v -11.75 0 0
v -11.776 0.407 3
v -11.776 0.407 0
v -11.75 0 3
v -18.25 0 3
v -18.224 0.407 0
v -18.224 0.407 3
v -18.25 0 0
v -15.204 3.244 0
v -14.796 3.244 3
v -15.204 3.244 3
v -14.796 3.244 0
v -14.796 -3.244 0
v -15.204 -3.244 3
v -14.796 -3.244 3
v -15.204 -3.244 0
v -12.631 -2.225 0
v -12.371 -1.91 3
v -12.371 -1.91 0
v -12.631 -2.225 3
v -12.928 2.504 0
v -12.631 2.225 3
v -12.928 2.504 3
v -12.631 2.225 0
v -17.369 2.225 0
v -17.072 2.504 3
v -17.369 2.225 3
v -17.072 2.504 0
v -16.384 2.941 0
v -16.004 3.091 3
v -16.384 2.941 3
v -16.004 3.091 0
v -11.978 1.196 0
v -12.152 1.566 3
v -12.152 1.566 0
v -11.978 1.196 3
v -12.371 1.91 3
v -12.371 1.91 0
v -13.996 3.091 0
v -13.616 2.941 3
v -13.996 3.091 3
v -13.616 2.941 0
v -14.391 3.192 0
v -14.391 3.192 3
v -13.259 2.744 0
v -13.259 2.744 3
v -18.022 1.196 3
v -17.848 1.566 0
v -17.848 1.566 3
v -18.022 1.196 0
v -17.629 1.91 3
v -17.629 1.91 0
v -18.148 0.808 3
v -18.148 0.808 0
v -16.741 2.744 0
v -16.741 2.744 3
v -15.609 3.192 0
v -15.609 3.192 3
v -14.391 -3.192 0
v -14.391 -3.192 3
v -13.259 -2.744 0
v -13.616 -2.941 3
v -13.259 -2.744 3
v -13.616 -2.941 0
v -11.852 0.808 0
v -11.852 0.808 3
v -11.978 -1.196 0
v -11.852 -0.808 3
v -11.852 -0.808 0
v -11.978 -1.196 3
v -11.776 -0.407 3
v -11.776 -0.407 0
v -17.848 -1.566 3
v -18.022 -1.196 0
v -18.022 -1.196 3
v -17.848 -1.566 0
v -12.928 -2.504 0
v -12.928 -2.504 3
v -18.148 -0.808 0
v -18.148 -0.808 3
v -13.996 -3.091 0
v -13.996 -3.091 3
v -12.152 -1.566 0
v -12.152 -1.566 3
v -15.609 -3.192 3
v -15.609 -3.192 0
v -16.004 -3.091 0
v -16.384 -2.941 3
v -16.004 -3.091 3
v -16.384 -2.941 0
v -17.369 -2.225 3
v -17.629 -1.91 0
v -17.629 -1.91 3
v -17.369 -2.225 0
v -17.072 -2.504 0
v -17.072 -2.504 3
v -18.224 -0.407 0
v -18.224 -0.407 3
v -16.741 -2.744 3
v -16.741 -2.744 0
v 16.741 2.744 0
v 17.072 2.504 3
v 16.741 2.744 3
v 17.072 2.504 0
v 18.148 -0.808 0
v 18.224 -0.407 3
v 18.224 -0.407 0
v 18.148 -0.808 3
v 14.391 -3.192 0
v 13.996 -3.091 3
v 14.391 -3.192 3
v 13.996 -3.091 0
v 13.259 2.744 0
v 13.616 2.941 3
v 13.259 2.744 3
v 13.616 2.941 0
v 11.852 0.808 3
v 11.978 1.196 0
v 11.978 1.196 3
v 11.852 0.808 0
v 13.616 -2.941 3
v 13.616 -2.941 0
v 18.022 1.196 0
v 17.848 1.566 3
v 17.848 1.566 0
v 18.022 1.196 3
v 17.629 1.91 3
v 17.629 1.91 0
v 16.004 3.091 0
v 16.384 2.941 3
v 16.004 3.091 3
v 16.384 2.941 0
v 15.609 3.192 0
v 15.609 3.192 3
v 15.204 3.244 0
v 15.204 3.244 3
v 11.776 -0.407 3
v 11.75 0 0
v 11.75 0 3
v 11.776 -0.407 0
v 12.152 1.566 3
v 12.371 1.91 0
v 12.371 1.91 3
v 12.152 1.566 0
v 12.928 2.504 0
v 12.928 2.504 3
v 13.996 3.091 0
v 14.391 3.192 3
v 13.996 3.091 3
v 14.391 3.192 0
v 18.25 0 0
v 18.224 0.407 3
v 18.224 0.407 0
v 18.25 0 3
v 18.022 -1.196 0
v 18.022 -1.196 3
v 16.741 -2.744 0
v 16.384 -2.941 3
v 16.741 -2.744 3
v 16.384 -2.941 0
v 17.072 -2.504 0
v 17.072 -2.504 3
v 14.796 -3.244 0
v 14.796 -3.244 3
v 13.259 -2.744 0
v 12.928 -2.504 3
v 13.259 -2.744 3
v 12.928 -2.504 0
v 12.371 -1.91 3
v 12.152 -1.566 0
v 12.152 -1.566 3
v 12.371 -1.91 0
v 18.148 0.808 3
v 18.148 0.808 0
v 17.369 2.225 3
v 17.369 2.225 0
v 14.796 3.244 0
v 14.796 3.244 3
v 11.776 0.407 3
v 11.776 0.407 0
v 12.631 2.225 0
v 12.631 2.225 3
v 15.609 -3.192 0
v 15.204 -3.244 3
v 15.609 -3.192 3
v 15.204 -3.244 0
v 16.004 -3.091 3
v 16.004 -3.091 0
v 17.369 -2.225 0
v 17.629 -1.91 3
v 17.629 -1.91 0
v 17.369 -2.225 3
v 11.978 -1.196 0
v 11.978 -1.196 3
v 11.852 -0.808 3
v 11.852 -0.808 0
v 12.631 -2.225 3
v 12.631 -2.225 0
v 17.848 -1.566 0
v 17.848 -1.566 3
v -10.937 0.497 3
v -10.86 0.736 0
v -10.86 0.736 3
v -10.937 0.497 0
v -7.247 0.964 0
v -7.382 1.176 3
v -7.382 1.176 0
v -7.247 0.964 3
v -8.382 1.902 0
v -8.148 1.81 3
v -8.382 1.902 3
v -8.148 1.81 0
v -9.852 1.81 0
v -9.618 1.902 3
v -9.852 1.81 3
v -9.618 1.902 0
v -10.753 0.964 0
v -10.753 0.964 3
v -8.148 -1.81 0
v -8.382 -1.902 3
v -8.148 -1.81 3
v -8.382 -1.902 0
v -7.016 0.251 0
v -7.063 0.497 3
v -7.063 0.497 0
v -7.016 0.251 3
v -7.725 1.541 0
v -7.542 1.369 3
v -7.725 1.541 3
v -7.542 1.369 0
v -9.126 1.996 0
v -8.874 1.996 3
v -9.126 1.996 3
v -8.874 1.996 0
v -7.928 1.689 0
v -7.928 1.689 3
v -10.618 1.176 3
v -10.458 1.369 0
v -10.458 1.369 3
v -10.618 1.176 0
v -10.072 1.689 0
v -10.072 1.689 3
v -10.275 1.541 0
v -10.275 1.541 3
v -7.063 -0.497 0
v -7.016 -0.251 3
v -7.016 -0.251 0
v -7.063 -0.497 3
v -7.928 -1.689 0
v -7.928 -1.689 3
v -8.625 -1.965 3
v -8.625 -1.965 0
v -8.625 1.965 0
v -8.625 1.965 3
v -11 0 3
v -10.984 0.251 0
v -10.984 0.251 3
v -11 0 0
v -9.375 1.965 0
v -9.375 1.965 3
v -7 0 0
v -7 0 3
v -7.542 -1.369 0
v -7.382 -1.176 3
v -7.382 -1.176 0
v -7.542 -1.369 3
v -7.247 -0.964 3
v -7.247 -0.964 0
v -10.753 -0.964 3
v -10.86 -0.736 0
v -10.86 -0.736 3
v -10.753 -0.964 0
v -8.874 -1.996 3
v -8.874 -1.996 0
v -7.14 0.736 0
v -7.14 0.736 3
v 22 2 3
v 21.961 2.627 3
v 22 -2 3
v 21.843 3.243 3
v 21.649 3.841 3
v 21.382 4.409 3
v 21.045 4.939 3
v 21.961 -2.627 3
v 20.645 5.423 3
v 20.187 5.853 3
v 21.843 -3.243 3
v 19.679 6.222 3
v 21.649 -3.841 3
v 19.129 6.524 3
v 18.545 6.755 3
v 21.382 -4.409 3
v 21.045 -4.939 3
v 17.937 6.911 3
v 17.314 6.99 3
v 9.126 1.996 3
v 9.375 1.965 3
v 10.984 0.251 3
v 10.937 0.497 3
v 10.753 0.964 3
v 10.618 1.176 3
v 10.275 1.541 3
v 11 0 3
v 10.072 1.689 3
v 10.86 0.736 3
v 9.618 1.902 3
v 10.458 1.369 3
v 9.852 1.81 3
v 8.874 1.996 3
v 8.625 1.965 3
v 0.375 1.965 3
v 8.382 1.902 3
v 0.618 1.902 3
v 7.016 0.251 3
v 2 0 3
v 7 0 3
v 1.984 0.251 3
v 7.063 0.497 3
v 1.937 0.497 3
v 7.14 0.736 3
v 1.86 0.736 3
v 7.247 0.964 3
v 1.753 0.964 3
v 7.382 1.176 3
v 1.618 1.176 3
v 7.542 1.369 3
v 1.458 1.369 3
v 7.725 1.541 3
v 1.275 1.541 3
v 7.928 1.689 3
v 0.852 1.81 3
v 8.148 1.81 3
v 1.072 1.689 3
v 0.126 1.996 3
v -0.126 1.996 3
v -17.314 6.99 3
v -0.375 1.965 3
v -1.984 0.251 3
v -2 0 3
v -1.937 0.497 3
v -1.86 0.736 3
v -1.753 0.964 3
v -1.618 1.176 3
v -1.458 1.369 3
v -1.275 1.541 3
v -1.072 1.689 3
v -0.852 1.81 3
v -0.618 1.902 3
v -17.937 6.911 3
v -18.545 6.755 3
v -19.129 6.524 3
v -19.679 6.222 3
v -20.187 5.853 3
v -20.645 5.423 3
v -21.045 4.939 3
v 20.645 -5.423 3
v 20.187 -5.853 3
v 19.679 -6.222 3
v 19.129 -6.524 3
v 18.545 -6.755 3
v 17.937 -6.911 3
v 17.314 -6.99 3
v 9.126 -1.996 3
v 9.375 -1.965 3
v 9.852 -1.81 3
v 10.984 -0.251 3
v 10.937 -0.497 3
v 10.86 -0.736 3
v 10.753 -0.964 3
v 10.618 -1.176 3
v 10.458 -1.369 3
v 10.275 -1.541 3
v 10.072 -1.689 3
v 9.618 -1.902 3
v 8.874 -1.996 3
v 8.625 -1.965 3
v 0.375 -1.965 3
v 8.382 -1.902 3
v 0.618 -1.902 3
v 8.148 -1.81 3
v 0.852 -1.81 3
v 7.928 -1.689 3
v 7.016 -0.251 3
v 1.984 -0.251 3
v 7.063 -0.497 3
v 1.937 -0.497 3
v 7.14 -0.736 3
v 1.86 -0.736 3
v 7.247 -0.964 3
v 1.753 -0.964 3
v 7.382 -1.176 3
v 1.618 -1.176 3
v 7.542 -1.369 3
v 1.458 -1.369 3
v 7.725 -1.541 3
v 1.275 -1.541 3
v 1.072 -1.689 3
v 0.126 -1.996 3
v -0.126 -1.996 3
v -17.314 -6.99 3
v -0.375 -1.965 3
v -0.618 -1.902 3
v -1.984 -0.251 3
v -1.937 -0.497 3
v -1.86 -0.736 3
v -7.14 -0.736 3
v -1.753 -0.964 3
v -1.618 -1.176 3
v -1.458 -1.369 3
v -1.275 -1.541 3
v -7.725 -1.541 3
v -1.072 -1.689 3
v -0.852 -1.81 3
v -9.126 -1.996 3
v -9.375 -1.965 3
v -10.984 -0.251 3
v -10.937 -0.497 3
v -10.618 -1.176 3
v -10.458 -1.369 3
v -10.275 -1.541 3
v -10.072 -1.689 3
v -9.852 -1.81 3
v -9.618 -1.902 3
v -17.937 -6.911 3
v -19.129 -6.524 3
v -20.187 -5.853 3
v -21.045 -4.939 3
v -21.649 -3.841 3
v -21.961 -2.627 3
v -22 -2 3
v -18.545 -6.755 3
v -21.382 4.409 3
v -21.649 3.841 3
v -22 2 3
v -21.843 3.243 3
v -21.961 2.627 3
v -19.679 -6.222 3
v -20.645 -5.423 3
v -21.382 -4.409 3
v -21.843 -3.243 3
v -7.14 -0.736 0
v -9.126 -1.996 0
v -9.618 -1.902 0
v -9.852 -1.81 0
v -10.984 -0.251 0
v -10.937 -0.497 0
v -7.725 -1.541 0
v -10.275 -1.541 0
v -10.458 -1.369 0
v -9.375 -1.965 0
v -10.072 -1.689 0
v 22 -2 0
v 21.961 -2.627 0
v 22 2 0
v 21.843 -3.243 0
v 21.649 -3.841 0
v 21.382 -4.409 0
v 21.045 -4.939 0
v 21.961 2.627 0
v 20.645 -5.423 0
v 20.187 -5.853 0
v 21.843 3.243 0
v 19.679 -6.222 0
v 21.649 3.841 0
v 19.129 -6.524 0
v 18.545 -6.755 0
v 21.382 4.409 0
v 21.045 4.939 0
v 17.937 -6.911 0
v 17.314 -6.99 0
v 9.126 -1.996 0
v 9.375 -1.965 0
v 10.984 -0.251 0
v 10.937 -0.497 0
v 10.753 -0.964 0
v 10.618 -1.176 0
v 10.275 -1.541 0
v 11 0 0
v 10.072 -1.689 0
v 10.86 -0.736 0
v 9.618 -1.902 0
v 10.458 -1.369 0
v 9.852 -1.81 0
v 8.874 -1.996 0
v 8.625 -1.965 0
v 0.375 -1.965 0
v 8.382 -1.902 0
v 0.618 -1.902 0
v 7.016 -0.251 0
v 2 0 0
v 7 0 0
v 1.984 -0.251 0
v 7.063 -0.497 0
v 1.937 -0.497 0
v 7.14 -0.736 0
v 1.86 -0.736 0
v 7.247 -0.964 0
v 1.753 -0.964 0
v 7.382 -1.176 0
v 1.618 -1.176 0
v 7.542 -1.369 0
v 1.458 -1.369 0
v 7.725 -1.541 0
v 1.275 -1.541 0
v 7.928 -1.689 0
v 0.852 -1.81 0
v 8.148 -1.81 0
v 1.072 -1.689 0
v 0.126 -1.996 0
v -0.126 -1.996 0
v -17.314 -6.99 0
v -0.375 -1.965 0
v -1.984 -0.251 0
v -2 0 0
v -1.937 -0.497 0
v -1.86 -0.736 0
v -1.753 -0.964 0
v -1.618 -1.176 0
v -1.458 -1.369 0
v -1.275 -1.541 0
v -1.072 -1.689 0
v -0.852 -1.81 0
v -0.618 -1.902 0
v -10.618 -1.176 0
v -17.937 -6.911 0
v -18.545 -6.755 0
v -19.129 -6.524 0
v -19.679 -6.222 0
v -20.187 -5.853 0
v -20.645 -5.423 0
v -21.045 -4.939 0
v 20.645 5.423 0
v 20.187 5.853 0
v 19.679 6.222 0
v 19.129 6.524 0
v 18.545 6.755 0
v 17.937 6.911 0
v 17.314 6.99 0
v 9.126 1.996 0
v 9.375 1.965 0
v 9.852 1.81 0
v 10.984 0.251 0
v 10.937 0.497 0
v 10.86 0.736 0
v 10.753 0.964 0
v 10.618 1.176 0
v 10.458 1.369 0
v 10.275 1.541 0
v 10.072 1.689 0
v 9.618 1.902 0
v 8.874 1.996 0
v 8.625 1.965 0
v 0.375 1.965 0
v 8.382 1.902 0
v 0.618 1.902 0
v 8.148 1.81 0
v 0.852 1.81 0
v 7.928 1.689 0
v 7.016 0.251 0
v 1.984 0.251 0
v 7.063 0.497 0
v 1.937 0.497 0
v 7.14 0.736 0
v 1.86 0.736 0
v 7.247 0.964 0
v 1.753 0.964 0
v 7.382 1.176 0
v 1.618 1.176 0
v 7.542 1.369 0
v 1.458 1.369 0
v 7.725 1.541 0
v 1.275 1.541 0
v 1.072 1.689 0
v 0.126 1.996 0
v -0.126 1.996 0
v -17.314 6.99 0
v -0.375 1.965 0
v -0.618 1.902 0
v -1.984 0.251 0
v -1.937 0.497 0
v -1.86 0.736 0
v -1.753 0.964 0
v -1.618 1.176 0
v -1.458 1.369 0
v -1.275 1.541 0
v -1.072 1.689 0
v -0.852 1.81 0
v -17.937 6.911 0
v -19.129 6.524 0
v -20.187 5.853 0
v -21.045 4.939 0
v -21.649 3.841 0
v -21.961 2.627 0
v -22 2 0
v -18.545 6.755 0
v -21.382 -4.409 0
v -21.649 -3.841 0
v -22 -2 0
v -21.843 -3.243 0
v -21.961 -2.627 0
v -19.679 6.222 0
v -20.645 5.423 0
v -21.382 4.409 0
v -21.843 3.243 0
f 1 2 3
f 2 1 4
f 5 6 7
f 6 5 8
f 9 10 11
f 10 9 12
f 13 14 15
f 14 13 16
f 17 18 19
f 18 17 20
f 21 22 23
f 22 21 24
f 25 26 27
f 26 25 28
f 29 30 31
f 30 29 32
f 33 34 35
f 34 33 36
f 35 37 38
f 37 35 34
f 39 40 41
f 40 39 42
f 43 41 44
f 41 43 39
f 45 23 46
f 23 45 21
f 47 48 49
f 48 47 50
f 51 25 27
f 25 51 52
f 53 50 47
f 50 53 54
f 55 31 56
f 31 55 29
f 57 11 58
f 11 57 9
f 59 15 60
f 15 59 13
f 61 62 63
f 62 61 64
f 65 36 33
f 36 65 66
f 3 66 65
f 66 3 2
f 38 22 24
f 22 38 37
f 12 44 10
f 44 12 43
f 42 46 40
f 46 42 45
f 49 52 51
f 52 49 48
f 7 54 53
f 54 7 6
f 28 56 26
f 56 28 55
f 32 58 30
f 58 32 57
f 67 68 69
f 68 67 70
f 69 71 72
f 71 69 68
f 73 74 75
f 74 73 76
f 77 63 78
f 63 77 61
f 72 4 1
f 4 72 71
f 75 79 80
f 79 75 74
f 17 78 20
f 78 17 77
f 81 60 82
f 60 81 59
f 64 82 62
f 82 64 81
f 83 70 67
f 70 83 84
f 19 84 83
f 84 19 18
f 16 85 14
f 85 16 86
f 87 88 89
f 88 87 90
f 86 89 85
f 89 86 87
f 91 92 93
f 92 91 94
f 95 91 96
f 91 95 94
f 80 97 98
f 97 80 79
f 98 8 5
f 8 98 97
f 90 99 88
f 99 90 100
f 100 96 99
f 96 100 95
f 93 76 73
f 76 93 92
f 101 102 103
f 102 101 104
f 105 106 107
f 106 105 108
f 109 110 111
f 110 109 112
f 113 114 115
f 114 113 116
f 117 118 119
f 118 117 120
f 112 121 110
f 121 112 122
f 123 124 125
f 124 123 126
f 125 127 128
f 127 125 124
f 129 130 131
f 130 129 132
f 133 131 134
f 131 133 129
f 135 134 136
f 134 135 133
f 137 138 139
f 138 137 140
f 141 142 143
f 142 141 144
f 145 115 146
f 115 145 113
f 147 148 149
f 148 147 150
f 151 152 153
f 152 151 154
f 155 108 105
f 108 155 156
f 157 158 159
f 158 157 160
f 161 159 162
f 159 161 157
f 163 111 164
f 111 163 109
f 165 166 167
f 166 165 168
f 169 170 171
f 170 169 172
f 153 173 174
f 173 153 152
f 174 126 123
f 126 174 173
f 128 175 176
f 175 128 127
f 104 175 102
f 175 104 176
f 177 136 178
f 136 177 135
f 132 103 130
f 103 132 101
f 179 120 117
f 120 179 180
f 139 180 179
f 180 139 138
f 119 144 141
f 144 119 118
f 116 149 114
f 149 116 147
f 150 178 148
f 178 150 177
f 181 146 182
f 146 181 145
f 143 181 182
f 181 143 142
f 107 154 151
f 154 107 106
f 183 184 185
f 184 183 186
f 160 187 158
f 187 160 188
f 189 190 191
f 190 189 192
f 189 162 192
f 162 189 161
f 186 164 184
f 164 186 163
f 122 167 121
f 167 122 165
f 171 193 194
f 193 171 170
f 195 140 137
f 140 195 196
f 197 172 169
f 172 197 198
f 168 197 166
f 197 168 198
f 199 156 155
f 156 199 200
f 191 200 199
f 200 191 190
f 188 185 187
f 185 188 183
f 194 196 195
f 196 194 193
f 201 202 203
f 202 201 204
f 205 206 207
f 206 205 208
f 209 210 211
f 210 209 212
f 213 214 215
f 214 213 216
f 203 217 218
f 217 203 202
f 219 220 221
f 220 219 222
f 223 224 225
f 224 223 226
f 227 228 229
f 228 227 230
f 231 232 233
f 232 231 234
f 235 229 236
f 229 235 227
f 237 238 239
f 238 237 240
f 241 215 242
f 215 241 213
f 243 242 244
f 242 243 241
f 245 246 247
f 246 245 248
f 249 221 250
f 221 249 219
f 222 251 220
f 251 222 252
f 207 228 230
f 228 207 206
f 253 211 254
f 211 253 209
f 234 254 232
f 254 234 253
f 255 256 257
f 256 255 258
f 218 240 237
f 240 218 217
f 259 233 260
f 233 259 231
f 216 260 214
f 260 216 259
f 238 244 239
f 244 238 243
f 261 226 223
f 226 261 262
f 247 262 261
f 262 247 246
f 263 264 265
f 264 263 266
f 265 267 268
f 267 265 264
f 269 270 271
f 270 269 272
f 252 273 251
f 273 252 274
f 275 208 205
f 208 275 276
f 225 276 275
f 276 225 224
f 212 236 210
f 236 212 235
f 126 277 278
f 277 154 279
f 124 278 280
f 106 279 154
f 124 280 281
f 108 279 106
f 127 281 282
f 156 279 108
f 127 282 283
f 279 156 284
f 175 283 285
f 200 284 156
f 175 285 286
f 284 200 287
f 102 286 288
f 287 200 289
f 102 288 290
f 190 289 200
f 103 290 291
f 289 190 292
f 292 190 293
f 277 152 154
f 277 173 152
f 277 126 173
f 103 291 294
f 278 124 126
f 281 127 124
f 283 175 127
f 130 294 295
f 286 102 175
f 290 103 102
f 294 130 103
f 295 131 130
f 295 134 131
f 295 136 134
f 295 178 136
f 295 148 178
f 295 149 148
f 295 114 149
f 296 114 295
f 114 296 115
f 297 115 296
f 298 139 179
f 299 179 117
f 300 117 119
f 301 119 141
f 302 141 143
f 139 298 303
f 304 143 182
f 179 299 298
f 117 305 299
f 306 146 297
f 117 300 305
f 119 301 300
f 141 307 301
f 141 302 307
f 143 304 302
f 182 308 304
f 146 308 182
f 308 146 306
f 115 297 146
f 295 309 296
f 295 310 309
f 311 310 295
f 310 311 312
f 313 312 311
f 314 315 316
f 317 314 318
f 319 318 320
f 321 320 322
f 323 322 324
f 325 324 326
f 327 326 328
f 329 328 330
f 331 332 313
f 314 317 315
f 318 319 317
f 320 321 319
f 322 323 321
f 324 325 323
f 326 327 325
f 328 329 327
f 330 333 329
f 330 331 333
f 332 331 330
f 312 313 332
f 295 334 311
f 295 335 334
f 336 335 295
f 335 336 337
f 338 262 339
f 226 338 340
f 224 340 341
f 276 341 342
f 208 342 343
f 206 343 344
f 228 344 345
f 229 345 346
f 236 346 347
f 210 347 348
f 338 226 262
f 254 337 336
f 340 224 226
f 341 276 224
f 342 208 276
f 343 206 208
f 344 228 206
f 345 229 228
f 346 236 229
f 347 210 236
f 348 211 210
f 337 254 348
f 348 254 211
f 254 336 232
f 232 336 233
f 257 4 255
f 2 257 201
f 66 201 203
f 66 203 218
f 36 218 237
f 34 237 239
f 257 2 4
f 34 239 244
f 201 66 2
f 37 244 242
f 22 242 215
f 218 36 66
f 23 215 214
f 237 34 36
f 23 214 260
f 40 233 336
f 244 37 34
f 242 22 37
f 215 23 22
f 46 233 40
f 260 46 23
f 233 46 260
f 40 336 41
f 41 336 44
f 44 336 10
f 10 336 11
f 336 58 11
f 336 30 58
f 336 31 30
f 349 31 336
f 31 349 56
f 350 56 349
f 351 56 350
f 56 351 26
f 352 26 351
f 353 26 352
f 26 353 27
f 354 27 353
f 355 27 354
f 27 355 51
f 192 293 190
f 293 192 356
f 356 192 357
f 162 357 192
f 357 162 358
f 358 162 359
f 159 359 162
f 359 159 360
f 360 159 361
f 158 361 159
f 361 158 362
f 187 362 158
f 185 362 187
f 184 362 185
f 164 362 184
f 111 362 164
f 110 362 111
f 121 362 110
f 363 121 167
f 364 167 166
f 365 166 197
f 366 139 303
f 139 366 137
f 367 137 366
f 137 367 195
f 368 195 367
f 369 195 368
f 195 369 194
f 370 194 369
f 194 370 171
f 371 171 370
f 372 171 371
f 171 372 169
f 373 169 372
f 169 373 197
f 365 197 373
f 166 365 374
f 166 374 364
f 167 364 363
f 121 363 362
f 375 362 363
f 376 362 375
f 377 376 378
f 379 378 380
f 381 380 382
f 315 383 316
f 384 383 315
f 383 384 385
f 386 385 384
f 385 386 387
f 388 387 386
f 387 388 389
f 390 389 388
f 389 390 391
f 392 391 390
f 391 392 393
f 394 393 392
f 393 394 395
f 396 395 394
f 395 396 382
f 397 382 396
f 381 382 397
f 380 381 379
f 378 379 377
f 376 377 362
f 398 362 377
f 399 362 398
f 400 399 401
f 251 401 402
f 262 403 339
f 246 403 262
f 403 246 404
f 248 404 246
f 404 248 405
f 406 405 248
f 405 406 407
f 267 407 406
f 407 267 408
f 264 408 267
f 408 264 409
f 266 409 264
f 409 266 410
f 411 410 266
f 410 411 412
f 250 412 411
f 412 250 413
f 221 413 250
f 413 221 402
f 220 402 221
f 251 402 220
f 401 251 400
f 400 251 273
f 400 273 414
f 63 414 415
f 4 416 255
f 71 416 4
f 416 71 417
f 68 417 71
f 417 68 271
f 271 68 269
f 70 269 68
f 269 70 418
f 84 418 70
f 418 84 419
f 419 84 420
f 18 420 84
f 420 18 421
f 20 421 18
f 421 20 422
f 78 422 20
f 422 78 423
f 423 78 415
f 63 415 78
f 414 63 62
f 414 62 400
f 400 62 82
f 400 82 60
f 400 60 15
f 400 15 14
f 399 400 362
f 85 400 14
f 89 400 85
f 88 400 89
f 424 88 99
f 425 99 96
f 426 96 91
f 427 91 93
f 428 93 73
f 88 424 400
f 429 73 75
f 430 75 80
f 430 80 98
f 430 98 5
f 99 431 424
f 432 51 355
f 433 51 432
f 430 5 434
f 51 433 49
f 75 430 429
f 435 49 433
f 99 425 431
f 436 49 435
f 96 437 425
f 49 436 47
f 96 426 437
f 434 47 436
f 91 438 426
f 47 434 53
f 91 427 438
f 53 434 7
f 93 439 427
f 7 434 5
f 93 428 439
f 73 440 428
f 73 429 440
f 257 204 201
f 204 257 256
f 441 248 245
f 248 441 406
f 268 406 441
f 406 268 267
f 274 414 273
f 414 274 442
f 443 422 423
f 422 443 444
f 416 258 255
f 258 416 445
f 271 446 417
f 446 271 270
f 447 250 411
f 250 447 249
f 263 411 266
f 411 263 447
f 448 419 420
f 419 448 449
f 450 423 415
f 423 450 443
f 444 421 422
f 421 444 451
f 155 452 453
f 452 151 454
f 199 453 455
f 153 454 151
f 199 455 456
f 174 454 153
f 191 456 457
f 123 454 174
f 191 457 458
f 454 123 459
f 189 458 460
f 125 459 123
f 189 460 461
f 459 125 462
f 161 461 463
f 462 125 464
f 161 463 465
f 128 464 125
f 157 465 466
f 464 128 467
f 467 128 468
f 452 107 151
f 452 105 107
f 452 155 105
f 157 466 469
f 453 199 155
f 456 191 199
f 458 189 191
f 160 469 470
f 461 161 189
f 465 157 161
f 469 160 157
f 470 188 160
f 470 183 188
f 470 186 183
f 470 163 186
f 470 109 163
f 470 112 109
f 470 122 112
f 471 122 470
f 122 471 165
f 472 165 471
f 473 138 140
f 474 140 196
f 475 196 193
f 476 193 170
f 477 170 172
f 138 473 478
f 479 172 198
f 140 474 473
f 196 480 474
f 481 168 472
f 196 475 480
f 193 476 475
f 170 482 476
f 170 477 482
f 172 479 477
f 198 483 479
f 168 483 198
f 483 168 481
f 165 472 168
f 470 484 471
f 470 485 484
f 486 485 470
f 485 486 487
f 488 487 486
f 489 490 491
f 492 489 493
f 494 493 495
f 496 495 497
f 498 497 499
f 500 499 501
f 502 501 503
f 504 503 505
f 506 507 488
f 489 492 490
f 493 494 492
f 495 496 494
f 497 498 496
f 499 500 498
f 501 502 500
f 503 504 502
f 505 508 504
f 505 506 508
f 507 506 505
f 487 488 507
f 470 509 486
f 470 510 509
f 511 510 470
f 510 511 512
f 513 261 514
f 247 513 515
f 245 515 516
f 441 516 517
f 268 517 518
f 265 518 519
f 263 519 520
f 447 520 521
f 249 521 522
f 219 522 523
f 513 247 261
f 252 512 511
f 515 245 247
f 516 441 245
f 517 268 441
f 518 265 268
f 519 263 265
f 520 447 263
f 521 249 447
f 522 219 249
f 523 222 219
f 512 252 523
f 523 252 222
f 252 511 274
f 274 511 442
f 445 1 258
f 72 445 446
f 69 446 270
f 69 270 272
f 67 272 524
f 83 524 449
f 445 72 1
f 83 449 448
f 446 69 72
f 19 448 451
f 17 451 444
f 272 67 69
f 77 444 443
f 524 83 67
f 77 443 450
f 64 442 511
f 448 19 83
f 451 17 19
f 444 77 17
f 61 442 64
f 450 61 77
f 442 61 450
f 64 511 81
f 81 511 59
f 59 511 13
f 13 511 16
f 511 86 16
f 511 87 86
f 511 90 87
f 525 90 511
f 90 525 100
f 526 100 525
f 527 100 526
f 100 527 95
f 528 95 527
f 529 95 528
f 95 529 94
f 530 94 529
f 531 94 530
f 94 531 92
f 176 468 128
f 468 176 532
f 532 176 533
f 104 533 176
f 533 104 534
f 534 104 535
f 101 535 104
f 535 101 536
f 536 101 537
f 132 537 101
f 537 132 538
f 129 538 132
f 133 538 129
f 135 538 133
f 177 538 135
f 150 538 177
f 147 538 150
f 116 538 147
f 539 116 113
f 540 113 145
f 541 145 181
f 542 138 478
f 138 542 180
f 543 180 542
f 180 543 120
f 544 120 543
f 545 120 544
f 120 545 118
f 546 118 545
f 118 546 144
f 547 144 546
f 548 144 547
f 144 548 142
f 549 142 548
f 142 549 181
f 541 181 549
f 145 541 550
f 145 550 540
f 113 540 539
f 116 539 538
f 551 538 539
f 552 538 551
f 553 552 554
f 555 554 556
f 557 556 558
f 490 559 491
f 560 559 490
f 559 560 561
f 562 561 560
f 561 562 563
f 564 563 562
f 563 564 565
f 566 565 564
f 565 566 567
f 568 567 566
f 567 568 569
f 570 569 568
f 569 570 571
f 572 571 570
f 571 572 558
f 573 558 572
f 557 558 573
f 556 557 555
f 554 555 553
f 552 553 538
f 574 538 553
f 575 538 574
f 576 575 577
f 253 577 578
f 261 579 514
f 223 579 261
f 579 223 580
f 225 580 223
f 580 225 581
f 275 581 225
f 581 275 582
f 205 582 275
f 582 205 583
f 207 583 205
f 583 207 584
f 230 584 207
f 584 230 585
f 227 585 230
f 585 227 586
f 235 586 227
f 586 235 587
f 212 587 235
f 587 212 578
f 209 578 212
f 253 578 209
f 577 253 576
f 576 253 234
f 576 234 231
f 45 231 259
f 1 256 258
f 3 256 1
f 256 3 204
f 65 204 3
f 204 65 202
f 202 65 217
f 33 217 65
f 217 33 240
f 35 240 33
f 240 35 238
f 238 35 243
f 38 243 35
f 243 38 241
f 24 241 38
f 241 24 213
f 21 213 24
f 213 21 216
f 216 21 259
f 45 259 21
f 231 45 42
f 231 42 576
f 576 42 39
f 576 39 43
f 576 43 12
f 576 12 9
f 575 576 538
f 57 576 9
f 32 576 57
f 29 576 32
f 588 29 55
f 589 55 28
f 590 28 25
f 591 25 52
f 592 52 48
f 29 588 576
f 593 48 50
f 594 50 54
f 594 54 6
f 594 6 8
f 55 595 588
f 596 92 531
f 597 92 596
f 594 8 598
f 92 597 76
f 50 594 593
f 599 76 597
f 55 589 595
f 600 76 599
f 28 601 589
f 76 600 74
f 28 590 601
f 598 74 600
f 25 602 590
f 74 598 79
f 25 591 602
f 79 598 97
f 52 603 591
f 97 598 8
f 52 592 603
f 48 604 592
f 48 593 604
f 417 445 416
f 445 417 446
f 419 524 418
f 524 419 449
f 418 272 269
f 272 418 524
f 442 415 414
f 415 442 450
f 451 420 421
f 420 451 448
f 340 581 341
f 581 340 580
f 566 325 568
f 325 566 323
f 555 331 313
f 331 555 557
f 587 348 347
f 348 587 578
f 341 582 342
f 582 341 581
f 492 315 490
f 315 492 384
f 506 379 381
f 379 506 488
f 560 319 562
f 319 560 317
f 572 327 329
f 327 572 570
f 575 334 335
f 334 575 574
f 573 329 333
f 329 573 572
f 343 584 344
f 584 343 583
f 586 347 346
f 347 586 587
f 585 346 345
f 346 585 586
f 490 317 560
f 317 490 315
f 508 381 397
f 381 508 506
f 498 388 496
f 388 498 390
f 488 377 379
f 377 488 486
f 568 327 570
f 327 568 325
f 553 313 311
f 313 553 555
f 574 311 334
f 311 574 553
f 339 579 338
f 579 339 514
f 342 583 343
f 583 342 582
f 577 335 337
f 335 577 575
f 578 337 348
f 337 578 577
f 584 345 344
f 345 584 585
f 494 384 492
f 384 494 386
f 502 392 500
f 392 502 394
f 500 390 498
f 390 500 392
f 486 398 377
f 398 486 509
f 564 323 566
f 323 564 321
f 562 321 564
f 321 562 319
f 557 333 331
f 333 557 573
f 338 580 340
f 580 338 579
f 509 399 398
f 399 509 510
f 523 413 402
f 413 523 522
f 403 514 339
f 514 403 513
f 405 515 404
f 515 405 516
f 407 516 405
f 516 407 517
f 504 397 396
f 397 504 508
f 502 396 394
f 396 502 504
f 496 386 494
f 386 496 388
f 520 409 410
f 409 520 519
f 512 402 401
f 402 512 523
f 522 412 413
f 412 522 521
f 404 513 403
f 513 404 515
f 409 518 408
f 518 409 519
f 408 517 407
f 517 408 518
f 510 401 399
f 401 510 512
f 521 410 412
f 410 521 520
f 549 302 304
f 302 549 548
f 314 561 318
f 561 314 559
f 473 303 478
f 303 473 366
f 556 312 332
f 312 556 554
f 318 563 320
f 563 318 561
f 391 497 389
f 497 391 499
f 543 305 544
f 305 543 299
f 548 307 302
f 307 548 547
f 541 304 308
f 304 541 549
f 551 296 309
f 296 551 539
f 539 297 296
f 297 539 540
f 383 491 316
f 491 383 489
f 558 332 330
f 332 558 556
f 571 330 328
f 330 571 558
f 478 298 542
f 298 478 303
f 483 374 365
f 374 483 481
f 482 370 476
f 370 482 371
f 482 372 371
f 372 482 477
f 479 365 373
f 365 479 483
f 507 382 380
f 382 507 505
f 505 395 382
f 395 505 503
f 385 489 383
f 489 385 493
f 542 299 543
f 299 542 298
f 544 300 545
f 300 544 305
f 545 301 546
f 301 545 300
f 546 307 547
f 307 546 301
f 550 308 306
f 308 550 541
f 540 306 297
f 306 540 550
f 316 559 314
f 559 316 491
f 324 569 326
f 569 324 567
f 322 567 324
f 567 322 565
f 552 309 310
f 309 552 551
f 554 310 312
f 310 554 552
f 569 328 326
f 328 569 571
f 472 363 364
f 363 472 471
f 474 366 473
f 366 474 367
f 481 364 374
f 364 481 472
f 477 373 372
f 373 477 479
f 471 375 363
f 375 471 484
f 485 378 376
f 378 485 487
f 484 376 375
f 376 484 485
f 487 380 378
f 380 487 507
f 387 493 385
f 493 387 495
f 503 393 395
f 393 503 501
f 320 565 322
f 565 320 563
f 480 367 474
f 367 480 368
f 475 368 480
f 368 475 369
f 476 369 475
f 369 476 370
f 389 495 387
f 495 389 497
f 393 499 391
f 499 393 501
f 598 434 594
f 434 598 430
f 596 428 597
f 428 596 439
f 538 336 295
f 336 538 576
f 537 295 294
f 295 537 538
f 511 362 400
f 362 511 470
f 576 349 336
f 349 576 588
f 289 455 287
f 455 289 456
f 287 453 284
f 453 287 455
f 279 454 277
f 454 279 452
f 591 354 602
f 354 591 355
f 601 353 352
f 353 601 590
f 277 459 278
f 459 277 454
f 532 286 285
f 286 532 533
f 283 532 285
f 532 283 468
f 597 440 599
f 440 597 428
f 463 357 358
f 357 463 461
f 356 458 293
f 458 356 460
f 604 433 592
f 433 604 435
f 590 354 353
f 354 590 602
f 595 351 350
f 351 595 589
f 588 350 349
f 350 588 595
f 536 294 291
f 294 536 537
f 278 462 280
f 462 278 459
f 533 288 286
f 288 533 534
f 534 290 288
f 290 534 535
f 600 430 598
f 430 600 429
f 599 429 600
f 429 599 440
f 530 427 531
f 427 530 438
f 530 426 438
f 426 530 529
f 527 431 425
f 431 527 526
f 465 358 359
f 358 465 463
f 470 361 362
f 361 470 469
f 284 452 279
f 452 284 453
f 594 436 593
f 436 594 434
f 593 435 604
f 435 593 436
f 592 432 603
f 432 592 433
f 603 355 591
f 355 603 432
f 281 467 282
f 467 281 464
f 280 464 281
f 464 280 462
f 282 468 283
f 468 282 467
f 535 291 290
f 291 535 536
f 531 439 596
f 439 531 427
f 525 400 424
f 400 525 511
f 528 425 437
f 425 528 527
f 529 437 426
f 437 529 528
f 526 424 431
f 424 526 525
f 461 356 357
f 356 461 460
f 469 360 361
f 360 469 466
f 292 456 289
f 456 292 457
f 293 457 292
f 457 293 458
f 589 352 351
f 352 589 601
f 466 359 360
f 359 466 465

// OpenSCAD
$fn = 50;


difference() {
	union() {
		hull() {
			translate(v = [-17.0000000000, 2.0000000000, 0]) {
				cylinder(h = 3, r = 5);
			}
			translate(v = [17.0000000000, 2.0000000000, 0]) {
				cylinder(h = 3, r = 5);
			}
			translate(v = [-17.0000000000, -2.0000000000, 0]) {
				cylinder(h = 3, r = 5);
			}
			translate(v = [17.0000000000, -2.0000000000, 0]) {
				cylinder(h = 3, r = 5);
			}
		}
	}
	union() {
		#translate(v = [-15.0000000000, 0.0000000000, 0]) {
			cylinder(h = 3, r = 3.2500000000);
		}
		#translate(v = [15.0000000000, 0.0000000000, 0]) {
			cylinder(h = 3, r = 3.2500000000);
		}
		#translate(v = [-15.0000000000, 0.0000000000, -100.0000000000]) {
			cylinder(h = 200, r = 3.2500000000);
		}
		#translate(v = [-15.0000000000, 0.0000000000, -100.0000000000]) {
			cylinder(h = 200, r = 3.2500000000);
		}
		#translate(v = [15.0000000000, 0.0000000000, -100.0000000000]) {
			cylinder(h = 200, r = 3.2500000000);
		}
		#translate(v = [15.0000000000, 0.0000000000, -100.0000000000]) {
			cylinder(h = 200, r = 3.2500000000);
		}
		#translate(v = [-15.0000000000, 0.0000000000, 0]) {
			cylinder(h = 3, r = 1.8000000000);
		}
		#translate(v = [15.0000000000, 0.0000000000, 0]) {
			cylinder(h = 3, r = 1.8000000000);
		}
		#translate(v = [-15.0000000000, 0.0000000000, 0]) {
			cylinder(h = 3, r = 1.8000000000);
		}
		#translate(v = [15.0000000000, 0.0000000000, 0]) {
			cylinder(h = 3, r = 1.8000000000);
		}
		#translate(v = [-15.0000000000, 0.0000000000, 0]) {
			cylinder(h = 3, r = 1.8000000000);
		}
		#translate(v = [15.0000000000, 0.0000000000, 0]) {
			cylinder(h = 3, r = 1.8000000000);
		}
		#translate(v = [-9.0000000000, 0, 0]) {
			cylinder(h = 3, r = 2.0000000000);
		}
		#cylinder(h = 3, r = 2.0000000000);
		#translate(v = [9.0000000000, 0, 0]) {
			cylinder(h = 3, r = 2.0000000000);
		}
	}
}
